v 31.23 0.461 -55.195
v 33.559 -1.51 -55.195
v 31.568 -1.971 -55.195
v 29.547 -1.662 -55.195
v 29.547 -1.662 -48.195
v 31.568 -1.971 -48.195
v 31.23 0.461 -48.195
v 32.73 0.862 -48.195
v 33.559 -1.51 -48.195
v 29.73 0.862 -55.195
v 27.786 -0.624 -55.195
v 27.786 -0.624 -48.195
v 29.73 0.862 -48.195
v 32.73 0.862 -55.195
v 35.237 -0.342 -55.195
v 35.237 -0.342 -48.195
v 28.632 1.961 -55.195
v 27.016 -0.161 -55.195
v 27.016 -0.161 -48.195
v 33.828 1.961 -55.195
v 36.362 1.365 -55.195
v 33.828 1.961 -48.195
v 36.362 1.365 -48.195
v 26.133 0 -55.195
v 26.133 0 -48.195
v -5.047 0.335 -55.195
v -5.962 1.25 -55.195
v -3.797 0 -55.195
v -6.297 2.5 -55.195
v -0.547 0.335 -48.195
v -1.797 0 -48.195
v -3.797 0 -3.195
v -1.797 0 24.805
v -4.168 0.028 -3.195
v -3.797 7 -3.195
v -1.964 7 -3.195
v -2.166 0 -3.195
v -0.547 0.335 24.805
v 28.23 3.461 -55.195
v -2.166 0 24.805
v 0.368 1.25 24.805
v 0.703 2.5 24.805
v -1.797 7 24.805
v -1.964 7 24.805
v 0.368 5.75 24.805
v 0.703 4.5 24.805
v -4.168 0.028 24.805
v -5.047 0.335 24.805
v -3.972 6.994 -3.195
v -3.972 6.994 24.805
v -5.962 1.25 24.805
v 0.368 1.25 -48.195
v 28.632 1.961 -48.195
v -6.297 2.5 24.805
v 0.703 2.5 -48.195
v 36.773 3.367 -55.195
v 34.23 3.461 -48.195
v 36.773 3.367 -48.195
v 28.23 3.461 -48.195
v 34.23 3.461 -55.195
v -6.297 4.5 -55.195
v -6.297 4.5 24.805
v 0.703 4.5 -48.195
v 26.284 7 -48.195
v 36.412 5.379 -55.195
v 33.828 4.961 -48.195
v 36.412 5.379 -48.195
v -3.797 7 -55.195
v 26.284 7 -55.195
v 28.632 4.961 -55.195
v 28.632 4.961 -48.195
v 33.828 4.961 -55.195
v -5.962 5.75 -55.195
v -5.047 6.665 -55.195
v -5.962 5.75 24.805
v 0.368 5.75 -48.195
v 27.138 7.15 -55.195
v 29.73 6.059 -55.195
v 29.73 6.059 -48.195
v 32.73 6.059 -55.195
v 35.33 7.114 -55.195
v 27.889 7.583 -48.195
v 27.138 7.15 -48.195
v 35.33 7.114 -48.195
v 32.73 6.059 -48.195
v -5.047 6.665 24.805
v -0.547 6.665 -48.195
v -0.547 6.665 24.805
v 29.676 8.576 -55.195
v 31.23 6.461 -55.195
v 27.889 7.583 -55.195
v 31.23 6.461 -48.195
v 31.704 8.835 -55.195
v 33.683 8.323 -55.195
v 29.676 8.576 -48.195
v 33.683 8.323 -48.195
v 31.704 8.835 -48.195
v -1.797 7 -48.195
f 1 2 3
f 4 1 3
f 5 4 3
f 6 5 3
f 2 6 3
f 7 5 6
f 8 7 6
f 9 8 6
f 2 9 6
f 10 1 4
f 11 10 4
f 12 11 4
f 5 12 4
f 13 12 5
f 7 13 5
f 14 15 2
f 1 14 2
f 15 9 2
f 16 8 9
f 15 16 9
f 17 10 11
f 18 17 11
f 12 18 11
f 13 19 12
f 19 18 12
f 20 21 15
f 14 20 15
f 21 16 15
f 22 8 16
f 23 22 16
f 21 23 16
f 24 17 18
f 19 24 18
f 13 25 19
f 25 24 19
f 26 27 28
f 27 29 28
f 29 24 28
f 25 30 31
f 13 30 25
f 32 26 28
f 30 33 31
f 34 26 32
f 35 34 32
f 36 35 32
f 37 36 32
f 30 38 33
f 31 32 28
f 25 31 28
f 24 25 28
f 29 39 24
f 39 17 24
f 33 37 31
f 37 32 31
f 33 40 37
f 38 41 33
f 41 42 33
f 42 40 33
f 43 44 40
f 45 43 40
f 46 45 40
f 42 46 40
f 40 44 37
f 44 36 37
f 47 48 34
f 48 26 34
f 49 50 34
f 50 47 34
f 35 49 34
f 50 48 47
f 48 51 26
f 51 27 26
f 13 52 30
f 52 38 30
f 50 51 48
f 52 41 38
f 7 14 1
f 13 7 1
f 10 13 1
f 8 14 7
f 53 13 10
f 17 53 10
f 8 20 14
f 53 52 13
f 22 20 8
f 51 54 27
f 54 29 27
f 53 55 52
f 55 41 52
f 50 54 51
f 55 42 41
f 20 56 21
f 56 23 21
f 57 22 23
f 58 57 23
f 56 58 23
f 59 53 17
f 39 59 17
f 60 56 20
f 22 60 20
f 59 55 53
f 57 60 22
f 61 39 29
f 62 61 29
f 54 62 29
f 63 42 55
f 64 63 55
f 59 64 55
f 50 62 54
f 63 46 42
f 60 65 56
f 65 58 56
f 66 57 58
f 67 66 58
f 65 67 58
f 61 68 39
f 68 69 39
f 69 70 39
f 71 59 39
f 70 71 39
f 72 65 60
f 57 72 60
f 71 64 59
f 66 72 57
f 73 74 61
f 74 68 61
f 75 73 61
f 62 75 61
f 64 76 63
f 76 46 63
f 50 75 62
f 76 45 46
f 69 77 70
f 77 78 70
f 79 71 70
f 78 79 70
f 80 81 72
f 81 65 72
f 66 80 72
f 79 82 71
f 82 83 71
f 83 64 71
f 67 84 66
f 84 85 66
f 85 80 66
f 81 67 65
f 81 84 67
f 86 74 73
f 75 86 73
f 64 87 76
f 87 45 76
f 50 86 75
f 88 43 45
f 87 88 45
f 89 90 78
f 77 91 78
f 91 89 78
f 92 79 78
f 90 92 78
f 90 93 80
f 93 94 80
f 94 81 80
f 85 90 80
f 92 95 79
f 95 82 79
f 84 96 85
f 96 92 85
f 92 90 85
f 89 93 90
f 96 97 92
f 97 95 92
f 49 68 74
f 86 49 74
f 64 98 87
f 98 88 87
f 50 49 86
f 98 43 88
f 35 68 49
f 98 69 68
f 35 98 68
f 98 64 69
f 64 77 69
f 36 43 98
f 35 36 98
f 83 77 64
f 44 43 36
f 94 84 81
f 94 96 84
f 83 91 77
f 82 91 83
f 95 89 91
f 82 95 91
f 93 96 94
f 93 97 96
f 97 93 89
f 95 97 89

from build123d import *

# Parameters (mm, degrees)
BOSS_EXTRUDE1_DEPTH = 7
FILLET1_R           = 2.5
SKETCH2_R           = 5.410546581
BOSS_EXTRUDE2_DEPTH = 7
FILLET2_R           = 2.5
SKETCH3_R           = 3
CUT_EXTRUDE1_DEPTH  = 16
SKETCH4_R           = 63
SKETCH4_R_2         = 61
CUT_EXTRUDE2_DEPTH  = 28


with BuildPart() as part:
    # Sketch1 → Boss-Extrude1 (new body)
    with BuildSketch(Plane(origin=(0, 0, 0), x_dir=(1, 0, 0), z_dir=(0, 1, 0))):
        Polygon((-6.297256143, 55.195428384), (0.702743857, 55.195428384), (33.702743857, 55.195428384), (33.702743857, 48.195428384), (0.702743857, 48.195428384), (0.702743857, -24.804571616), (-6.297256143, -24.804571616), align=None)
    extrude(amount=BOSS_EXTRUDE1_DEPTH)

    # Fillet1
    fillet1_edges = [part.edges().sort_by_distance(p)[0] for p in [
        (-6.297256143, 7, -15.195428384),
        (0.702743857, 7, -11.695428384),
        (-6.297256143, 0, -15.195428384),
        (0.702743857, 0, -11.695428384),
    ]]
    fillet(fillet1_edges, radius=FILLET1_R)

    # Sketch2 → Boss-Extrude2 (add)
    with BuildSketch(Plane(origin=(0, 0, -55.195428384), x_dir=(-1, 0, 0), z_dir=(0, 0, -1))):
        with Locations((-31.362766576, 3.435192577)):
            Circle(SKETCH2_R)
    extrude(amount=-BOSS_EXTRUDE2_DEPTH)

    # Fillet2
    fillet2_edges = [part.edges().sort_by_distance(p)[0] for p in [
        (27.182639034, 0, -51.695428384),
        (27.2926115, 7, -51.695428384),
    ]]
    fillet(fillet2_edges, radius=FILLET2_R)

    # Sketch3 → Cut-Extrude1 (cut)
    with BuildSketch(Plane(origin=(0, 0, -55.195428384), x_dir=(-1, 0, 0), z_dir=(0, 0, -1))):
        with Locations((-31.229894895, 3.460516579)):
            Circle(SKETCH3_R)
    extrude(amount=-CUT_EXTRUDE1_DEPTH, mode=Mode.SUBTRACT)

    # Sketch4 → Cut-Extrude2 (cut)
    with BuildSketch(Plane.XY.offset(24.804571616)):
        with Locations((58.808648779, 1.743015897)):
            Circle(SKETCH4_R)
        with Locations((58.808648779, 1.743015897)):
            Circle(SKETCH4_R_2, mode=Mode.SUBTRACT)
    extrude(amount=-CUT_EXTRUDE2_DEPTH, mode=Mode.SUBTRACT)


solid = part.part
